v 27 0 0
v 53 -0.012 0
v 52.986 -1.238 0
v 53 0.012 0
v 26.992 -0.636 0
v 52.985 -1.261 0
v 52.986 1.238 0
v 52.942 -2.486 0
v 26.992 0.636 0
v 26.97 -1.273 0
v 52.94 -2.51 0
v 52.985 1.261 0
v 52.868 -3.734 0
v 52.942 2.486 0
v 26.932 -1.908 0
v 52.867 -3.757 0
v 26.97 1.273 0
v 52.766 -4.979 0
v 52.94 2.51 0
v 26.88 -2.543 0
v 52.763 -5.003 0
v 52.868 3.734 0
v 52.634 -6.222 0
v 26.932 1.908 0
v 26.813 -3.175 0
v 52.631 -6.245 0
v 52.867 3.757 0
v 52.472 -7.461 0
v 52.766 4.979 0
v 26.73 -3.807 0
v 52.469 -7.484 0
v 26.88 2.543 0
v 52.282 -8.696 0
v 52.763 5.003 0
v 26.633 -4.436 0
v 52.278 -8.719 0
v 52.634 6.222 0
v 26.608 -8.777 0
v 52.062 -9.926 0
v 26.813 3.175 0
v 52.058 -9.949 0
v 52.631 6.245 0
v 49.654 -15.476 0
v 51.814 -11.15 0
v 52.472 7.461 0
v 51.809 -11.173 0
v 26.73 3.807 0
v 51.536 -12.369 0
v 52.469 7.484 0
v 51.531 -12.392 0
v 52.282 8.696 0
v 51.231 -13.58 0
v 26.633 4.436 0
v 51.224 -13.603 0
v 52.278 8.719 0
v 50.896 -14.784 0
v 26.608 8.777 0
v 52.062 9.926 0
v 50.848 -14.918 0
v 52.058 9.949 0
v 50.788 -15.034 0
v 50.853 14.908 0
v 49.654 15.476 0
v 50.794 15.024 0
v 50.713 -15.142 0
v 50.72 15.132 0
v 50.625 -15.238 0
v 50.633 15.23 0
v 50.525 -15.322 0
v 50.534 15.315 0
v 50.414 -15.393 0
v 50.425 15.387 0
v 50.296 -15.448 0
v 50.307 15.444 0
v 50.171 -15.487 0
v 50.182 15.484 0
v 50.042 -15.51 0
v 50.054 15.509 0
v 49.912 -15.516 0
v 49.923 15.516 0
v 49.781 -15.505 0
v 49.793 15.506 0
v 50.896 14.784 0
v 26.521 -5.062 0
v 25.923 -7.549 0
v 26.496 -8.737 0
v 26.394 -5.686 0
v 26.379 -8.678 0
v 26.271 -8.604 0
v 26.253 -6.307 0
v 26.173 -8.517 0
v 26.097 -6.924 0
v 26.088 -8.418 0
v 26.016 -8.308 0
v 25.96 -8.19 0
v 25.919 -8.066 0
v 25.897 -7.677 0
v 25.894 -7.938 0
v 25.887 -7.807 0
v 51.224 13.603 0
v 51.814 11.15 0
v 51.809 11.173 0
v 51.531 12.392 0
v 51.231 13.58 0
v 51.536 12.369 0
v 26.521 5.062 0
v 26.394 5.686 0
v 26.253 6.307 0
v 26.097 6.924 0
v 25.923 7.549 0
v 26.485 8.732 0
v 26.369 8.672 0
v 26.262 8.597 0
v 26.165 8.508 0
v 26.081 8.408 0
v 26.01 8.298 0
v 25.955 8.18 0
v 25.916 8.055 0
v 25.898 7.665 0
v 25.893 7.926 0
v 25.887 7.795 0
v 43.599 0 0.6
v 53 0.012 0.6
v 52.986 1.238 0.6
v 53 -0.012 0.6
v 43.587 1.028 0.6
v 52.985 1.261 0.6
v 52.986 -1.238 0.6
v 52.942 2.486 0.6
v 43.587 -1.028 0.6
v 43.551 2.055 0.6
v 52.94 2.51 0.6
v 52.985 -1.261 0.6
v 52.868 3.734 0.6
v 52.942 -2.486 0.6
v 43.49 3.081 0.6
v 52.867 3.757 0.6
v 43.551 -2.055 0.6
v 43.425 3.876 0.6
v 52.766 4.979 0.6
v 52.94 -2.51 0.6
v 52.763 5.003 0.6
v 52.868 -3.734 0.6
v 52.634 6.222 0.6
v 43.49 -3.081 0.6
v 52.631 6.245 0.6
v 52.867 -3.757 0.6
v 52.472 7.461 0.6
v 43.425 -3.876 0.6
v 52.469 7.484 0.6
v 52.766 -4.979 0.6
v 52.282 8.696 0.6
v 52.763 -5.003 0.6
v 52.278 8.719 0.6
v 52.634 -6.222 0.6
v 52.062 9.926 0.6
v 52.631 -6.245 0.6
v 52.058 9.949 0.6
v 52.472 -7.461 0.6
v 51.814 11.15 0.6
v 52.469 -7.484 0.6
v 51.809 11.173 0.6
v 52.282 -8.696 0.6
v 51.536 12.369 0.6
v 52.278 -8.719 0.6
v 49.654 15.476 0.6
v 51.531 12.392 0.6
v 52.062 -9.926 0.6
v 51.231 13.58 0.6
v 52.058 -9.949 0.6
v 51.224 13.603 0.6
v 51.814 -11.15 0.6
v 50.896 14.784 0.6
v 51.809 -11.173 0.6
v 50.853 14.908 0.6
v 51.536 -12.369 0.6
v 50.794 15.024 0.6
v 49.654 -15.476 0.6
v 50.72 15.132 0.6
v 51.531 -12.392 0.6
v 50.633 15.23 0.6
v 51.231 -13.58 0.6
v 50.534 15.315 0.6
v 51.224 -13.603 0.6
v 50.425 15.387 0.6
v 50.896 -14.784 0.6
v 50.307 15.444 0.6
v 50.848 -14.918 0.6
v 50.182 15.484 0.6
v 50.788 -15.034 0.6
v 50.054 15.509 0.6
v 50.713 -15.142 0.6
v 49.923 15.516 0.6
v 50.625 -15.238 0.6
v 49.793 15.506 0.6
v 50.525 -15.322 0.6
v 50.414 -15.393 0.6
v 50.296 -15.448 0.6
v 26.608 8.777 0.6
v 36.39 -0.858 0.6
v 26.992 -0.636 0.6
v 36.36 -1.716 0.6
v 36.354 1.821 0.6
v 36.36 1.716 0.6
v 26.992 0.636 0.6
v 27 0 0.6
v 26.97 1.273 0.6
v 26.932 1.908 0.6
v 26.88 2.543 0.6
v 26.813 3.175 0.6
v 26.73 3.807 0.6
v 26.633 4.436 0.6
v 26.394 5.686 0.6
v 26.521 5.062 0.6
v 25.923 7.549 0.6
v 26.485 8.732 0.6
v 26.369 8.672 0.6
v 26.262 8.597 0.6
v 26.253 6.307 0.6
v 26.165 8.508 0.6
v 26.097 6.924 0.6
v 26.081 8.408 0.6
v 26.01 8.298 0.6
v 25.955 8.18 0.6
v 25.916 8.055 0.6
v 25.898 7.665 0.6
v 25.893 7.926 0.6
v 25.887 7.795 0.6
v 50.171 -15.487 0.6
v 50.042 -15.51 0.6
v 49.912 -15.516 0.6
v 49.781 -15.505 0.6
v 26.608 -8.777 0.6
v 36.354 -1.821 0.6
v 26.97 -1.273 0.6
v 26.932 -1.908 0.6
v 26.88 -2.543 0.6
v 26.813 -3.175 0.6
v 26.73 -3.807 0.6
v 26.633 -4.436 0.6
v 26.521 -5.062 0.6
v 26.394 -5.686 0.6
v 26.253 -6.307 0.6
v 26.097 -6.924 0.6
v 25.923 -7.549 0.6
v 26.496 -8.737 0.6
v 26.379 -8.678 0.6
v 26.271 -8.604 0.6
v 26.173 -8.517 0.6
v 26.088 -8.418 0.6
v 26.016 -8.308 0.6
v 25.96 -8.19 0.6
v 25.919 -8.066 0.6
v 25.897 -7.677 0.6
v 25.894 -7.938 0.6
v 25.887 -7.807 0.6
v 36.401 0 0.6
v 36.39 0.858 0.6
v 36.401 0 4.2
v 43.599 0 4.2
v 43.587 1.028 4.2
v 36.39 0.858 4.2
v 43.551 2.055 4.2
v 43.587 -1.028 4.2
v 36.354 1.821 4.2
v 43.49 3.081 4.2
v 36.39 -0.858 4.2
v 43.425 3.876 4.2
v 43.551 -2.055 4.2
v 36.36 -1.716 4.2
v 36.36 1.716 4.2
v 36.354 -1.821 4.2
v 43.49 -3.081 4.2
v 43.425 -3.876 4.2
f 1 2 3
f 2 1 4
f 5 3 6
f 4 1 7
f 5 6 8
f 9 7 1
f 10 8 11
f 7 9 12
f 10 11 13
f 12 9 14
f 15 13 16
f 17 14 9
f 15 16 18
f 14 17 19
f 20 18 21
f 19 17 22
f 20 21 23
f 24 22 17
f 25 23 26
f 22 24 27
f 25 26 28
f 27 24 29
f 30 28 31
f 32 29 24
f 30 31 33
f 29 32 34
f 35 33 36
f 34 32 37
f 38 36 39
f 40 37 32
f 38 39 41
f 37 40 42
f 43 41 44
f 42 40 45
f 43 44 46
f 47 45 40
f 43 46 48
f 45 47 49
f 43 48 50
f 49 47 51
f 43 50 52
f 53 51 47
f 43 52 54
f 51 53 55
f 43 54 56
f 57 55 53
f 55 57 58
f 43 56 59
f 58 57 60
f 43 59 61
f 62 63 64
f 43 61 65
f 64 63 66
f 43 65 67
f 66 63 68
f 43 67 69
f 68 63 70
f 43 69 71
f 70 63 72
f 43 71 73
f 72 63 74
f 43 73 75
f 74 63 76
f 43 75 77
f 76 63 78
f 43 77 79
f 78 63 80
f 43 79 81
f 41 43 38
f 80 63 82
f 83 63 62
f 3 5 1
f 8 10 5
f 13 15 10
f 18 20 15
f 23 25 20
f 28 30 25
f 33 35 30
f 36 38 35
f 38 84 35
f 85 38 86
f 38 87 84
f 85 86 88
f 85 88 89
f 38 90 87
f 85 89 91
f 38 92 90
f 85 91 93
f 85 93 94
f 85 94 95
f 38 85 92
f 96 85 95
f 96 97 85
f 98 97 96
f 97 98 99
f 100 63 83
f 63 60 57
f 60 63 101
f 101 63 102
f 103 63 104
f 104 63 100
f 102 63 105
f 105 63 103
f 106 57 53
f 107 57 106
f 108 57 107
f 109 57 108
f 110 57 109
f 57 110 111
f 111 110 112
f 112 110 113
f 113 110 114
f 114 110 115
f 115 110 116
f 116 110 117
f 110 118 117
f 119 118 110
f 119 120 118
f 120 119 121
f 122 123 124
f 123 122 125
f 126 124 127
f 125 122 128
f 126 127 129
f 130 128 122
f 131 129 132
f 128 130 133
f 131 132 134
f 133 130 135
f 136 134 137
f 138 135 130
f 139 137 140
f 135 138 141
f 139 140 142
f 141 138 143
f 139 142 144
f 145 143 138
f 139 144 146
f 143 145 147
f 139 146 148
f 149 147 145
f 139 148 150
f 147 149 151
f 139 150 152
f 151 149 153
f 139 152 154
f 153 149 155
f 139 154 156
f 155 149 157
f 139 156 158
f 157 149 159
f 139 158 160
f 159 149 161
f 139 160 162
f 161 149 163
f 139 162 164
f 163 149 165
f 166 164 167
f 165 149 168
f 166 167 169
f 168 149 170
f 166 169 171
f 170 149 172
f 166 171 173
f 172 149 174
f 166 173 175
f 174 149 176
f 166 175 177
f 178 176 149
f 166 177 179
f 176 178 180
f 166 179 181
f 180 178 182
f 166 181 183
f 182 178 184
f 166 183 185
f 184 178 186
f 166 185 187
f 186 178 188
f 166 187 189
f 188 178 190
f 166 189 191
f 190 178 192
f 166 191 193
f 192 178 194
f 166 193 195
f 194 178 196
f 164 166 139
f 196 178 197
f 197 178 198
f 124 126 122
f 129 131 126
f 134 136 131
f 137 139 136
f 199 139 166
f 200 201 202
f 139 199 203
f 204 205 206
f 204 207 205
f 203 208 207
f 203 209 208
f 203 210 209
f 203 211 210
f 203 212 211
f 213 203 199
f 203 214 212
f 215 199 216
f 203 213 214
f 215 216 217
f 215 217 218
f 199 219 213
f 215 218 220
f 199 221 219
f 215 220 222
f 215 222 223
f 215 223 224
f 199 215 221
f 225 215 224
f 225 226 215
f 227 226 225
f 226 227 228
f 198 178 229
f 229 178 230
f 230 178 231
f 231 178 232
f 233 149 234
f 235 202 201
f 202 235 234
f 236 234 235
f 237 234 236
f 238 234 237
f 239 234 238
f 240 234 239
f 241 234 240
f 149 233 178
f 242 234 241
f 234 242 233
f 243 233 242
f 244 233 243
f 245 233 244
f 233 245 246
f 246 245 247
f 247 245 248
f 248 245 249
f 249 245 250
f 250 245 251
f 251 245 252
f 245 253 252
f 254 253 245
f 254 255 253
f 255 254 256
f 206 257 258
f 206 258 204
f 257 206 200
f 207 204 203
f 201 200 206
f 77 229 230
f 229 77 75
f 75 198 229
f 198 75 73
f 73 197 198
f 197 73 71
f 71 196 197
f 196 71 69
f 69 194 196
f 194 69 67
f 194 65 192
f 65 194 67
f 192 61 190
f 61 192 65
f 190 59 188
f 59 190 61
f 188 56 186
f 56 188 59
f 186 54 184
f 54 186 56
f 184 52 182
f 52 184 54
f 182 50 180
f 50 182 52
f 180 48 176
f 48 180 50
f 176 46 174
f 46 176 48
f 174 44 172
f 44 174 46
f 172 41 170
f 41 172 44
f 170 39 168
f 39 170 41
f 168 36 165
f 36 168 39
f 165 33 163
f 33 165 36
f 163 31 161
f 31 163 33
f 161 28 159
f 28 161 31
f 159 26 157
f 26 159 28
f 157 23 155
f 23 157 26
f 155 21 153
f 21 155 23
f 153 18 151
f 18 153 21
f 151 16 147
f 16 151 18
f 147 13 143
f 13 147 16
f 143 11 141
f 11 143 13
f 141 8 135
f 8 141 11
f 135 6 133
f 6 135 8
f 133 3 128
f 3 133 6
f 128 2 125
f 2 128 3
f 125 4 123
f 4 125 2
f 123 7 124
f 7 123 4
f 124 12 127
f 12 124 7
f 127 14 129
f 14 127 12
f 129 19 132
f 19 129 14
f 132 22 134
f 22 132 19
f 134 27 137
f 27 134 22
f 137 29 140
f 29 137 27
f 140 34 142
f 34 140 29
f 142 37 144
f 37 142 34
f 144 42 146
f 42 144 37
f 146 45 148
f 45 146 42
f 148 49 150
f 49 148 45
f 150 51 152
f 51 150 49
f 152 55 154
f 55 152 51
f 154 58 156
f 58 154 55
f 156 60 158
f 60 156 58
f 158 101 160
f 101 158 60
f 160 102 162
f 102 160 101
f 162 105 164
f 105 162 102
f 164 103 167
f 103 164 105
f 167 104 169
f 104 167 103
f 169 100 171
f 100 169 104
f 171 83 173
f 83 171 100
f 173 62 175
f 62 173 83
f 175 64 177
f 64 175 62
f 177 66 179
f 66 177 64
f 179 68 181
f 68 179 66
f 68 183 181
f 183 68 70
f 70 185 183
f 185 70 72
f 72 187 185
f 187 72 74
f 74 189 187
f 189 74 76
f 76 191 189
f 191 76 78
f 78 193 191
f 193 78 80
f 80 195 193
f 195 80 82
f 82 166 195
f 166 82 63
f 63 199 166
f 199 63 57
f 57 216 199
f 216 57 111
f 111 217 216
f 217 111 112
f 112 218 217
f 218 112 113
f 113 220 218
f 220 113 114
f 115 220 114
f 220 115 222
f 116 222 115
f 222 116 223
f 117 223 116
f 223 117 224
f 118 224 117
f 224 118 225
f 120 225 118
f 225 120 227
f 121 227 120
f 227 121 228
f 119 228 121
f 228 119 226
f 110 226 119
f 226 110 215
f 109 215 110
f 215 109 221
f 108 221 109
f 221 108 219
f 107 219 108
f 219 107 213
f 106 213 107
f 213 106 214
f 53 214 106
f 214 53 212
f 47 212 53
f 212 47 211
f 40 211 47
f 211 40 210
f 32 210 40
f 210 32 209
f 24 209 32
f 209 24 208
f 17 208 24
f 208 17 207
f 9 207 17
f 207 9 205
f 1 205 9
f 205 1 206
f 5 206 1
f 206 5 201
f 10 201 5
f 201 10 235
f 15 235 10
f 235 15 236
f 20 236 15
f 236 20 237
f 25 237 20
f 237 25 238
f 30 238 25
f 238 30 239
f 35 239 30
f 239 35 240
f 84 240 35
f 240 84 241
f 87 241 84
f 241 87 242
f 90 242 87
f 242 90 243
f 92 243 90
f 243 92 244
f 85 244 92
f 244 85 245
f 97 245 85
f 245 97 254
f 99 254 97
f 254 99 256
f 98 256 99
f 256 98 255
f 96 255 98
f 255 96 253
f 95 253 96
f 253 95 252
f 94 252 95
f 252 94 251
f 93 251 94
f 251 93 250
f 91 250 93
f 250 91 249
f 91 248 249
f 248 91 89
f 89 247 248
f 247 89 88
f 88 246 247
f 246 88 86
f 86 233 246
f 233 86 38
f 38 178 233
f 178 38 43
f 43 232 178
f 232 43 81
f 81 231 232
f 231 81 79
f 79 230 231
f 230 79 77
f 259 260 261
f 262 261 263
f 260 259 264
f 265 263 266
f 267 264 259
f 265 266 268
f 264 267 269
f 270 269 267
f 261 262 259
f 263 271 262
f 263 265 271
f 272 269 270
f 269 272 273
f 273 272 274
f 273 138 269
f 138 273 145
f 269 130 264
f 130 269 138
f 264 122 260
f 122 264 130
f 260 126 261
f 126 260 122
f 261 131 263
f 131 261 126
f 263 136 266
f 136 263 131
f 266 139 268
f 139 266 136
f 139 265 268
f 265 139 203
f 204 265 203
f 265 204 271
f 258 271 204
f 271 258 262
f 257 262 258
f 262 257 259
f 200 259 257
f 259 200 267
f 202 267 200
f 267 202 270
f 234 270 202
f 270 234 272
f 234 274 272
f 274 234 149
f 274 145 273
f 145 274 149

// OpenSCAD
// file: parameters.scad
// =============================================================================
// Gen-BC — nightly 2026-10-03 (physics_scorer, honest magpylib watts)
// Clocking 0 deg (magnets N facing S / through-magnetised stack) + D-flat keyed bore + index notch + flip-symmetric braces/bolts.
// Windable 2-piece bobbin; turns = physics_scorer turns_fit; copper only between flanges.
// former_web = 3.60 mm (taller copper vs Gen-BA 2.46) — gap grows with web (honest Bz tradeoff).
// =============================================================================
topology            = "mid_rotor";

// --- Wire / winding (physics_scorer winding-fit) -------------------------------
wire_awg            = 26;
wire_od             = 0.45;     // insulated OD mm (bare 0.405)
fill_realistic      = 0.60;     // insulated-wire area / window, hand-wound layered
turns               = 114;       // = physics_scorer turns_fit (do NOT raise)
coil_former_type    = "bobbin";
coil_core_inset     = 8.40;     // radial copper build: hub = copper boundary inset by this
wind_build_axial    = 0.0;      // nothing proud of the flanges
wind_build_radial   = 0.0;

// --- Bobbin (base + lid) ---------------------------------------------------------
coil_id_r           = 28.00;    // copper boundary sector (over the magnet track)
coil_od_r           = 52.00;
span_deg            = 32.42;    // = pitch - 2*asin((wall+0.85)/coil_id_r) -> >=1.2 mm stator web
former_web          = 3.60;     // copper height between flanges
flange_t            = 0.60;
wall                = 1.00;     // flange lip beyond copper
former_bare_h       = former_web + 2 * flange_t;
coil_envelope_h     = former_bare_h + 2 * wind_build_axial;
tab_w               = 7.0;
tab_len             = 7.0;
tab_h               = former_bare_h / 2;
pin_d               = 1.9;      // 1.75 mm filament locating pin
coil_mount_r        = coil_od_r + 0.2 + 4.0;
lead_y              = 1.6;
lead_slot_w         = 0.9;
lead_groove_d       = 0.6;

// --- Gap -------------------------------------------------------------------------
run_clear           = 0.50;     // rotor face -> flange
gap_spacer_h        = run_clear + wind_build_axial;
m2m                 = coil_envelope_h + 2 * run_clear;

// --- Stator ----------------------------------------------------------------------
coil_stations       = 9;        // per stator; x2 stators
bay_clear           = 0.25;
bay_depth           = former_bare_h;
stator_back_web     = 2.0;
stator_thick        = bay_depth + stator_back_web;
stator_od           = 160.0;
shaft_clear_stator  = 14.0;     // stator is static; shaft only

// --- Rotor(s) --------------------------------------------------------------------
magnet_Br           = 1.43;     // N52
halbach_magnetisation = "diametric"; // O5x5 assist magnets MUST be DIAMETRICALLY magnetised (tangential)
rotor_b_same_axis   = true;     // same-index magnets share one axis: N faces S across the gap
large_pocket_d      = 20.3;
small_pocket_d      = 5.3;
pocket_h            = 5.2;
large_n             = 8;
R_large             = 40.0;
R_small_inner       = 26.0;
R_small_mid         = 40.0;
R_small_outer       = 56.0;
carrier_od          = 158.0;
mid_carrier_thick   = 12.0;
hub_h               = 10.0;
hub_od              = 30.0;
rotor_b_offset_deg  = 0.0;      // CLOCKING: magnets directly opposite
shaft_key           = "dflat";
dflat_depth         = 0.5;      // 8 mm shaft with 0.5 mm flat (7.5 across flat)
index_notch_d       = 3.0;

// --- Modular MAX interface (Gen-E family) -----------------------------------------
shaft_bore          = 8.35;
dflat_x             = 4.0 - dflat_depth + (shaft_bore - 8.0) / 2;
bearing_d           = 21.85;
bearing_h           = 7.2;
m3_clear            = 3.5;
bolt_r_inner        = 18.0;
bolt_n_inner        = 4;
bolt_inner_angles   = [22.5, -22.5, 157.5, 202.5];  // between poles, flip-symmetric
flange_bolt_r       = 72.0;
flange_bolt_n       = 6;
brace_r             = 68.0;
brace_d             = 4.3;
brace_n             = 4;
brace_angles        = [45, 135, 225, 315];          // flip-symmetric

spacer_pad_od       = 14.0;
spacer_pad_id       = m3_clear;
endbell_od          = 160.0;
endbell_thick       = 8.0;
endbell_shaft_clear = 10.0;
plate_max_mm        = 410;

$fn = 64;
// main file
// Gen-BC — bobbin BASE (bottom flange + hub). Print x18. Wind 26 AWG x 114 t around the hub
// with the LID glued on (coil_lid.stl). Copper lives ONLY between the flanges (no proud winds).
include <parameters.scad>;
$fn = 48;
module sector_2d(r_in, r_out, ang) {
    polygon([
        for (a = [-ang/2 : ang/24 : ang/2]) [r_in*cos(a), r_in*sin(a)],
        for (a = [ang/2 : -ang/24 : -ang/2]) [r_out*cos(a), r_out*sin(a)]
    ]);
}
module footprint_2d() { offset(r=wall) sector_2d(coil_id_r, coil_od_r, span_deg); }
module hub_2d()       { offset(delta=-coil_core_inset) sector_2d(coil_id_r, coil_od_r, span_deg); }

difference() {
    union() {
        linear_extrude(flange_t) footprint_2d();
        translate([0, 0, flange_t - 0.01]) linear_extrude(former_web + 0.01) hub_2d();
    }
    // (no slot in the base: both leads leave through the lid's grooves on the stator +Z side)
}
